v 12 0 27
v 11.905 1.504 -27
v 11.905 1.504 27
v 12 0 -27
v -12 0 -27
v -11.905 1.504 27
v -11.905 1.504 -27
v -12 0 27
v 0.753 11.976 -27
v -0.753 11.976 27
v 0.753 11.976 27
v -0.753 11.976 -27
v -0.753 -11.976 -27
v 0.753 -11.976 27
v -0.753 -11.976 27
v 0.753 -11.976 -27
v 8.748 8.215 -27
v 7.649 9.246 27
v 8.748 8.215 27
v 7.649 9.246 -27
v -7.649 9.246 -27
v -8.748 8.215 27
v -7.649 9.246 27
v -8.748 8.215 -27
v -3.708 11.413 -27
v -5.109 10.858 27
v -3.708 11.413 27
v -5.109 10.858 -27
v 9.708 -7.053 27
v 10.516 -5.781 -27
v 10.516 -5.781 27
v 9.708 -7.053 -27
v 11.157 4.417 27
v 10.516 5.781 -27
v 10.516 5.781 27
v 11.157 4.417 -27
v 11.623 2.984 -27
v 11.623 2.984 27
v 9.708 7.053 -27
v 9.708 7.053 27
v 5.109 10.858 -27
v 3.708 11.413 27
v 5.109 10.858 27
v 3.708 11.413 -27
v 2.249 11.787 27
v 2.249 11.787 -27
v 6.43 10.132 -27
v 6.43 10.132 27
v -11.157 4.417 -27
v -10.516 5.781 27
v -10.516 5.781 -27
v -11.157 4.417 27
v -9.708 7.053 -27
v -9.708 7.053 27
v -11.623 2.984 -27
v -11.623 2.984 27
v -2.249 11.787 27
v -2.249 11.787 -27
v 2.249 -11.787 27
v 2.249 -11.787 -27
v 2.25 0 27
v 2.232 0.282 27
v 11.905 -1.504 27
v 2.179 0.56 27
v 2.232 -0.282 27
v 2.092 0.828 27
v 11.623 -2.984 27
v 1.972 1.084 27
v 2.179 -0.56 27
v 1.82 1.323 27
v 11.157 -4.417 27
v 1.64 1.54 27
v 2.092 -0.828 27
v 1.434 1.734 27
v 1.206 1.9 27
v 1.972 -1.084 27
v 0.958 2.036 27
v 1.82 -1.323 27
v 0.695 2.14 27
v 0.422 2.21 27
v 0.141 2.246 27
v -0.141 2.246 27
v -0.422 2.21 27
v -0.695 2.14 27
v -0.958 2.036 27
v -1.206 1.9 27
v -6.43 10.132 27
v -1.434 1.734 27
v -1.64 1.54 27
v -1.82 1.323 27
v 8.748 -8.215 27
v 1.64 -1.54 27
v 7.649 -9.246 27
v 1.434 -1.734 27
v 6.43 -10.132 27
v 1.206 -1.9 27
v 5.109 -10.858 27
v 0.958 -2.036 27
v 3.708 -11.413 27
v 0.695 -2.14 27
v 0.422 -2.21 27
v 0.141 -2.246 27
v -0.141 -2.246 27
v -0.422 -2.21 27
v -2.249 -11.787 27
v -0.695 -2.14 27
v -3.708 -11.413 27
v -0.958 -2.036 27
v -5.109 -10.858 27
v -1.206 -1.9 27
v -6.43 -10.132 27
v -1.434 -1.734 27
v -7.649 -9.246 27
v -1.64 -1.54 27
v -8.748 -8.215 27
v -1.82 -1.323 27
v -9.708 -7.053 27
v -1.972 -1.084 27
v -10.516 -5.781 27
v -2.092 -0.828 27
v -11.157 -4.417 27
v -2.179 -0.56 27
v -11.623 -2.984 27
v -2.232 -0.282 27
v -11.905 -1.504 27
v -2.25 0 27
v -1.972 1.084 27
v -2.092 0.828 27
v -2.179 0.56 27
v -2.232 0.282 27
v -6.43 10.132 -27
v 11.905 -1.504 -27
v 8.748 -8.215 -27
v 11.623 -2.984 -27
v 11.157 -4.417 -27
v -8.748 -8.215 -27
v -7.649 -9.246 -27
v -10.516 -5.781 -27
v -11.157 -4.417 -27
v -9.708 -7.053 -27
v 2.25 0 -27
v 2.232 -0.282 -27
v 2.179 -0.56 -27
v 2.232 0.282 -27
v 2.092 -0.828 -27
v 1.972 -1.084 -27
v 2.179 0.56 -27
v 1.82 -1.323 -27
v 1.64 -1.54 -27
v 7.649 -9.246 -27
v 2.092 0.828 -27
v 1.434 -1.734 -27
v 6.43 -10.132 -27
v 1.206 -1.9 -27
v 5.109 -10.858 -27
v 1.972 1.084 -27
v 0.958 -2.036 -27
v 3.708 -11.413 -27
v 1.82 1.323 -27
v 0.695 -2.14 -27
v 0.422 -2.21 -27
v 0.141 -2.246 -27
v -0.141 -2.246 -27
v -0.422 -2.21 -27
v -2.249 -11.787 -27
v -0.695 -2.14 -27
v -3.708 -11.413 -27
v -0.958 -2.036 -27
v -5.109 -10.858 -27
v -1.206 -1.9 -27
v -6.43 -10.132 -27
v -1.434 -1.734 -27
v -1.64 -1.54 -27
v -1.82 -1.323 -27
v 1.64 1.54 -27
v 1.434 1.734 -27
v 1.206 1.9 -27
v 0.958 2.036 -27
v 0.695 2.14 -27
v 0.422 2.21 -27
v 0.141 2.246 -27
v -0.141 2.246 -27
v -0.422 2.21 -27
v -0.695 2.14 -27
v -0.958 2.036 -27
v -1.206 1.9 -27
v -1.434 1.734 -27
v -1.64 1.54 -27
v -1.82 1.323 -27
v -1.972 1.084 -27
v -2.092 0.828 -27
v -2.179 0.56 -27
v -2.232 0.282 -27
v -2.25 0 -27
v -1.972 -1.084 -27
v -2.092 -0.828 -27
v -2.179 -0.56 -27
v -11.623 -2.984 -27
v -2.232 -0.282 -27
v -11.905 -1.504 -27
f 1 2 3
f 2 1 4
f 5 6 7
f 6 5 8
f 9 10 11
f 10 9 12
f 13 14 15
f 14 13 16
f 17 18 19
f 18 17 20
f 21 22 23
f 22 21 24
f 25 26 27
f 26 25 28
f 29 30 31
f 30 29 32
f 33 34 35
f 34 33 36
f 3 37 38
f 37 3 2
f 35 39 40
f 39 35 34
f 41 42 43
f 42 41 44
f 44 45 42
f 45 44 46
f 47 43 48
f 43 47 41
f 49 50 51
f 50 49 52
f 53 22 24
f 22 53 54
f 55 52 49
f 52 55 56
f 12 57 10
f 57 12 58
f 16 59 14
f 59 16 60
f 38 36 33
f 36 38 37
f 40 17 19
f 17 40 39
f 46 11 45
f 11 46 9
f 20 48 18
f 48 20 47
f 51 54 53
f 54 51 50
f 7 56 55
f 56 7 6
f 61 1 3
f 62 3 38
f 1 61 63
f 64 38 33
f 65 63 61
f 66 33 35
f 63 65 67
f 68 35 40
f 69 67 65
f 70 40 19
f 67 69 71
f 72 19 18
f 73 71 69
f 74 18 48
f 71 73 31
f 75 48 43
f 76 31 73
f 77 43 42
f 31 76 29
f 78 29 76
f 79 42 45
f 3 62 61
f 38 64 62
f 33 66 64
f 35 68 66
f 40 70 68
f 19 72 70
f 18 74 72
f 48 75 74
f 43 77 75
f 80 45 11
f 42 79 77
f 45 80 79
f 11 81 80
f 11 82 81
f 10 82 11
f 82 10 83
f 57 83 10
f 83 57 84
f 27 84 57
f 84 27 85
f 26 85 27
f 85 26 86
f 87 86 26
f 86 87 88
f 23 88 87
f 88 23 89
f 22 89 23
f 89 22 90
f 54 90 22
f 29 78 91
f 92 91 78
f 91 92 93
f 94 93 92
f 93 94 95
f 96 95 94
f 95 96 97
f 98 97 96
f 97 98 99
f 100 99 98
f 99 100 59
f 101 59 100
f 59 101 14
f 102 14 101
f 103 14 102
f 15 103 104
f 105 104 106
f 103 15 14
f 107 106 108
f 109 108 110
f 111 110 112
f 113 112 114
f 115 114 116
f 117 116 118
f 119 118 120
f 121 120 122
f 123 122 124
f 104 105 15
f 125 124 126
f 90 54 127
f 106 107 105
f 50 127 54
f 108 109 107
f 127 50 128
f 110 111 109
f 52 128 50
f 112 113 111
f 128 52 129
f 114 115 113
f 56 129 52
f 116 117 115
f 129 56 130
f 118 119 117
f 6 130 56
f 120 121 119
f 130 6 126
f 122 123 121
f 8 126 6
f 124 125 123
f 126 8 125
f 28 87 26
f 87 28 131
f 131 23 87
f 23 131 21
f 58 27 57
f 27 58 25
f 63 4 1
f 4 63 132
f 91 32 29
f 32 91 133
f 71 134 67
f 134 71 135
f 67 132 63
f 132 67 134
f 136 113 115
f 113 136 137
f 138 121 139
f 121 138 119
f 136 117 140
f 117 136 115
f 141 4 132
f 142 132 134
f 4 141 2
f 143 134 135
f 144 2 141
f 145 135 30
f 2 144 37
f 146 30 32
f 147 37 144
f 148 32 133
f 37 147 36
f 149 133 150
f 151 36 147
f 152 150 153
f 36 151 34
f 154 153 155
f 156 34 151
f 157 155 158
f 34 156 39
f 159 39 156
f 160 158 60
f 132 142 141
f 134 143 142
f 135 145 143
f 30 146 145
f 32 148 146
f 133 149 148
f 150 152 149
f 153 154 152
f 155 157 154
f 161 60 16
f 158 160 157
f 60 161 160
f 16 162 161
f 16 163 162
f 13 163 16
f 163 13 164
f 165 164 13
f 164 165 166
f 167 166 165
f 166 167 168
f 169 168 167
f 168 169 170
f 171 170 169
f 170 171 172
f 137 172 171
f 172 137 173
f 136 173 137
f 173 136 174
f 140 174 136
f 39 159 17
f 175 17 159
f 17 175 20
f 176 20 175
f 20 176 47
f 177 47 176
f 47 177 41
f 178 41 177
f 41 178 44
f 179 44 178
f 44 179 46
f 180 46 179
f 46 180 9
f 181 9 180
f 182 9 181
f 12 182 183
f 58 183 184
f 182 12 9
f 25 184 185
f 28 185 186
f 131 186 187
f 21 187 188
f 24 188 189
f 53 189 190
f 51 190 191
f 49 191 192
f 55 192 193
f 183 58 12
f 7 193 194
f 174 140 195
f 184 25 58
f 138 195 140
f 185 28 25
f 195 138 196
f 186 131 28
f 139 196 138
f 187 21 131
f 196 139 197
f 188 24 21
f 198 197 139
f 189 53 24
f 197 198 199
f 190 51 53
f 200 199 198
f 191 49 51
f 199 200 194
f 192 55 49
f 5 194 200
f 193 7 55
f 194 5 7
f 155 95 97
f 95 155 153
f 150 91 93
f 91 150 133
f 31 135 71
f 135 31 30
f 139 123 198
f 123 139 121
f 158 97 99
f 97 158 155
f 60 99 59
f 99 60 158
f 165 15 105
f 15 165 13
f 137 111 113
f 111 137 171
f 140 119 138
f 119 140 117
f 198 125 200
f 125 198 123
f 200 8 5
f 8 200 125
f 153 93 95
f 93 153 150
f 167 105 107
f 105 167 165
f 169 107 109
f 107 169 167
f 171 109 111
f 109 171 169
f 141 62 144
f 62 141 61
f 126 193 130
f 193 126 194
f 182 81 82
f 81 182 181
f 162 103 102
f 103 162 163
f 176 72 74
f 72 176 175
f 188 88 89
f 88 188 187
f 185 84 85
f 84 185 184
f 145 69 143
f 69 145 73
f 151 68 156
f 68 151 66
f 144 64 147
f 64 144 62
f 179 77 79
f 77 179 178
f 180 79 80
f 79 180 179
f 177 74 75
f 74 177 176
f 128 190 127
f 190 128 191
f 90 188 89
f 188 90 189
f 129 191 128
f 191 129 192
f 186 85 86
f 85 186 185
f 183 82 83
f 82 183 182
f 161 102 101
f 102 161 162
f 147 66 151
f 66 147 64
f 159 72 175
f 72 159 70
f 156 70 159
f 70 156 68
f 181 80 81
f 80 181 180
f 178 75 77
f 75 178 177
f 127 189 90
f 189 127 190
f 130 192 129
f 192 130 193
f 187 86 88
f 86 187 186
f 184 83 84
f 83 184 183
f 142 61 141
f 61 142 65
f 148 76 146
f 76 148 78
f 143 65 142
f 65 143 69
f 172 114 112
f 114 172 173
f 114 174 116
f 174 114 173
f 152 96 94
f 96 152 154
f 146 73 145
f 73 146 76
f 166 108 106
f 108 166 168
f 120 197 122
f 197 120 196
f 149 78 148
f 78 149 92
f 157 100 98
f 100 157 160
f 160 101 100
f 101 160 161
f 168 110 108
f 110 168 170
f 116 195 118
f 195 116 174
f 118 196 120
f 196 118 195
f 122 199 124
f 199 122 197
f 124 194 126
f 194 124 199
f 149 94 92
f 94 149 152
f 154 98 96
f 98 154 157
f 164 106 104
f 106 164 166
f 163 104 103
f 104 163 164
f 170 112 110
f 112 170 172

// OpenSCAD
$fn = 50;


difference() {
	union() {
		translate(v = [0, 0, -27.0000000000]) {
			cylinder(h = 54, r = 12.0000000000);
		}
	}
	union() {
		translate(v = [0, 0, -100.0000000000]) {
			cylinder(h = 200, r = 2.2500000000);
		}
	}
}
